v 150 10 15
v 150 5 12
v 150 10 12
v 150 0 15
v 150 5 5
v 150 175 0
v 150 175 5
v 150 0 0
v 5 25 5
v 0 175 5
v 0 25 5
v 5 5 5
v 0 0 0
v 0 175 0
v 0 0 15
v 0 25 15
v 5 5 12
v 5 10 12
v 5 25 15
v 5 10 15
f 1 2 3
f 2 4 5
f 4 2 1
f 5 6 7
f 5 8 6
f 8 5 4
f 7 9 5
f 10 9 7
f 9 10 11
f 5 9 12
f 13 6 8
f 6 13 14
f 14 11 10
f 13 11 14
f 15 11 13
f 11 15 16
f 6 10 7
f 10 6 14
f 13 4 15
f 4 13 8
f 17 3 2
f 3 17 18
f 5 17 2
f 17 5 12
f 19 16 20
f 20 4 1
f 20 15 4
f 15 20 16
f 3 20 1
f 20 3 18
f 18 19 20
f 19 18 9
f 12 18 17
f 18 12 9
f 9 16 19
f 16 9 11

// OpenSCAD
cube([150, 175, 5]);
cube([150, 5, 12]);
translate([0, 0, 12])
    cube([150, 10, 3]);
cube([5, 25, 15]);
